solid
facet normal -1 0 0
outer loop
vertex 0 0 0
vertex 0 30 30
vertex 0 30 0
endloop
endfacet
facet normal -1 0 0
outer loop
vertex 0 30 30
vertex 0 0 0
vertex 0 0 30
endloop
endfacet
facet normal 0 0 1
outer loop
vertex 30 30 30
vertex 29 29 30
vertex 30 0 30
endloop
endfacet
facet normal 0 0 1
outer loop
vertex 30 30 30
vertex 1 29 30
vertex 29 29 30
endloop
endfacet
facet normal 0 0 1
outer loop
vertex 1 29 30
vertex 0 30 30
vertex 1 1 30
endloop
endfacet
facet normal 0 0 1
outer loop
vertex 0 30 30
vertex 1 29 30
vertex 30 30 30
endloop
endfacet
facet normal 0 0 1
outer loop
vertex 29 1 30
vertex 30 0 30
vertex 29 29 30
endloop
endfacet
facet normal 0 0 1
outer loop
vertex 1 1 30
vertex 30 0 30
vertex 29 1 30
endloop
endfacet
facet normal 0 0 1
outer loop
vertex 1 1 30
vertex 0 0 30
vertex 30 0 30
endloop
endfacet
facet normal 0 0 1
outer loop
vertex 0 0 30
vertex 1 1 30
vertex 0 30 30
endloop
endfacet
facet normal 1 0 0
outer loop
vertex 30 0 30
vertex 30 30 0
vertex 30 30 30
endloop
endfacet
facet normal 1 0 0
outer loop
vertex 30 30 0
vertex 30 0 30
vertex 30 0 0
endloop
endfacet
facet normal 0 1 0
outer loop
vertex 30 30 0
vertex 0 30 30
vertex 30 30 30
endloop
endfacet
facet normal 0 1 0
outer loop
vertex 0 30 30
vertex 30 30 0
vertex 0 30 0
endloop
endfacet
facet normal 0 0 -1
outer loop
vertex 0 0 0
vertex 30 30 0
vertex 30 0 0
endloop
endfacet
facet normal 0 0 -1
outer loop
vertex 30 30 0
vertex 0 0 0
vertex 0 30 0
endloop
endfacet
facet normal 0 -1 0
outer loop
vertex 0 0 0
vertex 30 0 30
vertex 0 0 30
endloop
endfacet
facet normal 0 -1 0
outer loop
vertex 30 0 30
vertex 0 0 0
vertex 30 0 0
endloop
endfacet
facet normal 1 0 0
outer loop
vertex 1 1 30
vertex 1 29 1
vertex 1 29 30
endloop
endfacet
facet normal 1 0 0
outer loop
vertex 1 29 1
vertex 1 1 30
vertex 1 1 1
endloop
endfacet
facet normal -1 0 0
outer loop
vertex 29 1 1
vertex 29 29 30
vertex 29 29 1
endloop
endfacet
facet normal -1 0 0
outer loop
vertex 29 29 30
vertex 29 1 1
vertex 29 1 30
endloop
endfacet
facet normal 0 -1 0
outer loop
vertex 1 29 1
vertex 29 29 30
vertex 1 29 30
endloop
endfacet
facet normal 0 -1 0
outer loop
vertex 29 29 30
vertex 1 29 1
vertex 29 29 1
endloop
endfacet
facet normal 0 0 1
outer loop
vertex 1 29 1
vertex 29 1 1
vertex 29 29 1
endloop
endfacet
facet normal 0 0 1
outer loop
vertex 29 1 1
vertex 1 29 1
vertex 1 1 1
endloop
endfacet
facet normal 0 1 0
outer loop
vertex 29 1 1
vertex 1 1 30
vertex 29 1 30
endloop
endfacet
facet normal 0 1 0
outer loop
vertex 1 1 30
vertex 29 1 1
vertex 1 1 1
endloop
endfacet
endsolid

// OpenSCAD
module box(length, width, thickness){
    difference(){
        cube([length, width, thickness]);
        translate([1, 1, 1]){
            cube([length - 2, width - 2, thickness]);
        }
    }
}

module lid(length, width, thickness){
    difference(){
    box(length, width, thickness);
        translate([12,3,-.01]){
            mirror([1,0,0]){
                rotate([0,0,90]){
                    linear_extrude(height=.4){
                        text("S S S", size=15);
                    }
                }
            }
        }
    }
}

box(30, 30, 30);

translate([2.5,0,10]){
    rotate([90,0,0]){
        linear_extrude(height=.6){
            text("");
        }
    }
}

//lid(37.9, 58, 5);
//lid(36.4, 56.4, 5);
